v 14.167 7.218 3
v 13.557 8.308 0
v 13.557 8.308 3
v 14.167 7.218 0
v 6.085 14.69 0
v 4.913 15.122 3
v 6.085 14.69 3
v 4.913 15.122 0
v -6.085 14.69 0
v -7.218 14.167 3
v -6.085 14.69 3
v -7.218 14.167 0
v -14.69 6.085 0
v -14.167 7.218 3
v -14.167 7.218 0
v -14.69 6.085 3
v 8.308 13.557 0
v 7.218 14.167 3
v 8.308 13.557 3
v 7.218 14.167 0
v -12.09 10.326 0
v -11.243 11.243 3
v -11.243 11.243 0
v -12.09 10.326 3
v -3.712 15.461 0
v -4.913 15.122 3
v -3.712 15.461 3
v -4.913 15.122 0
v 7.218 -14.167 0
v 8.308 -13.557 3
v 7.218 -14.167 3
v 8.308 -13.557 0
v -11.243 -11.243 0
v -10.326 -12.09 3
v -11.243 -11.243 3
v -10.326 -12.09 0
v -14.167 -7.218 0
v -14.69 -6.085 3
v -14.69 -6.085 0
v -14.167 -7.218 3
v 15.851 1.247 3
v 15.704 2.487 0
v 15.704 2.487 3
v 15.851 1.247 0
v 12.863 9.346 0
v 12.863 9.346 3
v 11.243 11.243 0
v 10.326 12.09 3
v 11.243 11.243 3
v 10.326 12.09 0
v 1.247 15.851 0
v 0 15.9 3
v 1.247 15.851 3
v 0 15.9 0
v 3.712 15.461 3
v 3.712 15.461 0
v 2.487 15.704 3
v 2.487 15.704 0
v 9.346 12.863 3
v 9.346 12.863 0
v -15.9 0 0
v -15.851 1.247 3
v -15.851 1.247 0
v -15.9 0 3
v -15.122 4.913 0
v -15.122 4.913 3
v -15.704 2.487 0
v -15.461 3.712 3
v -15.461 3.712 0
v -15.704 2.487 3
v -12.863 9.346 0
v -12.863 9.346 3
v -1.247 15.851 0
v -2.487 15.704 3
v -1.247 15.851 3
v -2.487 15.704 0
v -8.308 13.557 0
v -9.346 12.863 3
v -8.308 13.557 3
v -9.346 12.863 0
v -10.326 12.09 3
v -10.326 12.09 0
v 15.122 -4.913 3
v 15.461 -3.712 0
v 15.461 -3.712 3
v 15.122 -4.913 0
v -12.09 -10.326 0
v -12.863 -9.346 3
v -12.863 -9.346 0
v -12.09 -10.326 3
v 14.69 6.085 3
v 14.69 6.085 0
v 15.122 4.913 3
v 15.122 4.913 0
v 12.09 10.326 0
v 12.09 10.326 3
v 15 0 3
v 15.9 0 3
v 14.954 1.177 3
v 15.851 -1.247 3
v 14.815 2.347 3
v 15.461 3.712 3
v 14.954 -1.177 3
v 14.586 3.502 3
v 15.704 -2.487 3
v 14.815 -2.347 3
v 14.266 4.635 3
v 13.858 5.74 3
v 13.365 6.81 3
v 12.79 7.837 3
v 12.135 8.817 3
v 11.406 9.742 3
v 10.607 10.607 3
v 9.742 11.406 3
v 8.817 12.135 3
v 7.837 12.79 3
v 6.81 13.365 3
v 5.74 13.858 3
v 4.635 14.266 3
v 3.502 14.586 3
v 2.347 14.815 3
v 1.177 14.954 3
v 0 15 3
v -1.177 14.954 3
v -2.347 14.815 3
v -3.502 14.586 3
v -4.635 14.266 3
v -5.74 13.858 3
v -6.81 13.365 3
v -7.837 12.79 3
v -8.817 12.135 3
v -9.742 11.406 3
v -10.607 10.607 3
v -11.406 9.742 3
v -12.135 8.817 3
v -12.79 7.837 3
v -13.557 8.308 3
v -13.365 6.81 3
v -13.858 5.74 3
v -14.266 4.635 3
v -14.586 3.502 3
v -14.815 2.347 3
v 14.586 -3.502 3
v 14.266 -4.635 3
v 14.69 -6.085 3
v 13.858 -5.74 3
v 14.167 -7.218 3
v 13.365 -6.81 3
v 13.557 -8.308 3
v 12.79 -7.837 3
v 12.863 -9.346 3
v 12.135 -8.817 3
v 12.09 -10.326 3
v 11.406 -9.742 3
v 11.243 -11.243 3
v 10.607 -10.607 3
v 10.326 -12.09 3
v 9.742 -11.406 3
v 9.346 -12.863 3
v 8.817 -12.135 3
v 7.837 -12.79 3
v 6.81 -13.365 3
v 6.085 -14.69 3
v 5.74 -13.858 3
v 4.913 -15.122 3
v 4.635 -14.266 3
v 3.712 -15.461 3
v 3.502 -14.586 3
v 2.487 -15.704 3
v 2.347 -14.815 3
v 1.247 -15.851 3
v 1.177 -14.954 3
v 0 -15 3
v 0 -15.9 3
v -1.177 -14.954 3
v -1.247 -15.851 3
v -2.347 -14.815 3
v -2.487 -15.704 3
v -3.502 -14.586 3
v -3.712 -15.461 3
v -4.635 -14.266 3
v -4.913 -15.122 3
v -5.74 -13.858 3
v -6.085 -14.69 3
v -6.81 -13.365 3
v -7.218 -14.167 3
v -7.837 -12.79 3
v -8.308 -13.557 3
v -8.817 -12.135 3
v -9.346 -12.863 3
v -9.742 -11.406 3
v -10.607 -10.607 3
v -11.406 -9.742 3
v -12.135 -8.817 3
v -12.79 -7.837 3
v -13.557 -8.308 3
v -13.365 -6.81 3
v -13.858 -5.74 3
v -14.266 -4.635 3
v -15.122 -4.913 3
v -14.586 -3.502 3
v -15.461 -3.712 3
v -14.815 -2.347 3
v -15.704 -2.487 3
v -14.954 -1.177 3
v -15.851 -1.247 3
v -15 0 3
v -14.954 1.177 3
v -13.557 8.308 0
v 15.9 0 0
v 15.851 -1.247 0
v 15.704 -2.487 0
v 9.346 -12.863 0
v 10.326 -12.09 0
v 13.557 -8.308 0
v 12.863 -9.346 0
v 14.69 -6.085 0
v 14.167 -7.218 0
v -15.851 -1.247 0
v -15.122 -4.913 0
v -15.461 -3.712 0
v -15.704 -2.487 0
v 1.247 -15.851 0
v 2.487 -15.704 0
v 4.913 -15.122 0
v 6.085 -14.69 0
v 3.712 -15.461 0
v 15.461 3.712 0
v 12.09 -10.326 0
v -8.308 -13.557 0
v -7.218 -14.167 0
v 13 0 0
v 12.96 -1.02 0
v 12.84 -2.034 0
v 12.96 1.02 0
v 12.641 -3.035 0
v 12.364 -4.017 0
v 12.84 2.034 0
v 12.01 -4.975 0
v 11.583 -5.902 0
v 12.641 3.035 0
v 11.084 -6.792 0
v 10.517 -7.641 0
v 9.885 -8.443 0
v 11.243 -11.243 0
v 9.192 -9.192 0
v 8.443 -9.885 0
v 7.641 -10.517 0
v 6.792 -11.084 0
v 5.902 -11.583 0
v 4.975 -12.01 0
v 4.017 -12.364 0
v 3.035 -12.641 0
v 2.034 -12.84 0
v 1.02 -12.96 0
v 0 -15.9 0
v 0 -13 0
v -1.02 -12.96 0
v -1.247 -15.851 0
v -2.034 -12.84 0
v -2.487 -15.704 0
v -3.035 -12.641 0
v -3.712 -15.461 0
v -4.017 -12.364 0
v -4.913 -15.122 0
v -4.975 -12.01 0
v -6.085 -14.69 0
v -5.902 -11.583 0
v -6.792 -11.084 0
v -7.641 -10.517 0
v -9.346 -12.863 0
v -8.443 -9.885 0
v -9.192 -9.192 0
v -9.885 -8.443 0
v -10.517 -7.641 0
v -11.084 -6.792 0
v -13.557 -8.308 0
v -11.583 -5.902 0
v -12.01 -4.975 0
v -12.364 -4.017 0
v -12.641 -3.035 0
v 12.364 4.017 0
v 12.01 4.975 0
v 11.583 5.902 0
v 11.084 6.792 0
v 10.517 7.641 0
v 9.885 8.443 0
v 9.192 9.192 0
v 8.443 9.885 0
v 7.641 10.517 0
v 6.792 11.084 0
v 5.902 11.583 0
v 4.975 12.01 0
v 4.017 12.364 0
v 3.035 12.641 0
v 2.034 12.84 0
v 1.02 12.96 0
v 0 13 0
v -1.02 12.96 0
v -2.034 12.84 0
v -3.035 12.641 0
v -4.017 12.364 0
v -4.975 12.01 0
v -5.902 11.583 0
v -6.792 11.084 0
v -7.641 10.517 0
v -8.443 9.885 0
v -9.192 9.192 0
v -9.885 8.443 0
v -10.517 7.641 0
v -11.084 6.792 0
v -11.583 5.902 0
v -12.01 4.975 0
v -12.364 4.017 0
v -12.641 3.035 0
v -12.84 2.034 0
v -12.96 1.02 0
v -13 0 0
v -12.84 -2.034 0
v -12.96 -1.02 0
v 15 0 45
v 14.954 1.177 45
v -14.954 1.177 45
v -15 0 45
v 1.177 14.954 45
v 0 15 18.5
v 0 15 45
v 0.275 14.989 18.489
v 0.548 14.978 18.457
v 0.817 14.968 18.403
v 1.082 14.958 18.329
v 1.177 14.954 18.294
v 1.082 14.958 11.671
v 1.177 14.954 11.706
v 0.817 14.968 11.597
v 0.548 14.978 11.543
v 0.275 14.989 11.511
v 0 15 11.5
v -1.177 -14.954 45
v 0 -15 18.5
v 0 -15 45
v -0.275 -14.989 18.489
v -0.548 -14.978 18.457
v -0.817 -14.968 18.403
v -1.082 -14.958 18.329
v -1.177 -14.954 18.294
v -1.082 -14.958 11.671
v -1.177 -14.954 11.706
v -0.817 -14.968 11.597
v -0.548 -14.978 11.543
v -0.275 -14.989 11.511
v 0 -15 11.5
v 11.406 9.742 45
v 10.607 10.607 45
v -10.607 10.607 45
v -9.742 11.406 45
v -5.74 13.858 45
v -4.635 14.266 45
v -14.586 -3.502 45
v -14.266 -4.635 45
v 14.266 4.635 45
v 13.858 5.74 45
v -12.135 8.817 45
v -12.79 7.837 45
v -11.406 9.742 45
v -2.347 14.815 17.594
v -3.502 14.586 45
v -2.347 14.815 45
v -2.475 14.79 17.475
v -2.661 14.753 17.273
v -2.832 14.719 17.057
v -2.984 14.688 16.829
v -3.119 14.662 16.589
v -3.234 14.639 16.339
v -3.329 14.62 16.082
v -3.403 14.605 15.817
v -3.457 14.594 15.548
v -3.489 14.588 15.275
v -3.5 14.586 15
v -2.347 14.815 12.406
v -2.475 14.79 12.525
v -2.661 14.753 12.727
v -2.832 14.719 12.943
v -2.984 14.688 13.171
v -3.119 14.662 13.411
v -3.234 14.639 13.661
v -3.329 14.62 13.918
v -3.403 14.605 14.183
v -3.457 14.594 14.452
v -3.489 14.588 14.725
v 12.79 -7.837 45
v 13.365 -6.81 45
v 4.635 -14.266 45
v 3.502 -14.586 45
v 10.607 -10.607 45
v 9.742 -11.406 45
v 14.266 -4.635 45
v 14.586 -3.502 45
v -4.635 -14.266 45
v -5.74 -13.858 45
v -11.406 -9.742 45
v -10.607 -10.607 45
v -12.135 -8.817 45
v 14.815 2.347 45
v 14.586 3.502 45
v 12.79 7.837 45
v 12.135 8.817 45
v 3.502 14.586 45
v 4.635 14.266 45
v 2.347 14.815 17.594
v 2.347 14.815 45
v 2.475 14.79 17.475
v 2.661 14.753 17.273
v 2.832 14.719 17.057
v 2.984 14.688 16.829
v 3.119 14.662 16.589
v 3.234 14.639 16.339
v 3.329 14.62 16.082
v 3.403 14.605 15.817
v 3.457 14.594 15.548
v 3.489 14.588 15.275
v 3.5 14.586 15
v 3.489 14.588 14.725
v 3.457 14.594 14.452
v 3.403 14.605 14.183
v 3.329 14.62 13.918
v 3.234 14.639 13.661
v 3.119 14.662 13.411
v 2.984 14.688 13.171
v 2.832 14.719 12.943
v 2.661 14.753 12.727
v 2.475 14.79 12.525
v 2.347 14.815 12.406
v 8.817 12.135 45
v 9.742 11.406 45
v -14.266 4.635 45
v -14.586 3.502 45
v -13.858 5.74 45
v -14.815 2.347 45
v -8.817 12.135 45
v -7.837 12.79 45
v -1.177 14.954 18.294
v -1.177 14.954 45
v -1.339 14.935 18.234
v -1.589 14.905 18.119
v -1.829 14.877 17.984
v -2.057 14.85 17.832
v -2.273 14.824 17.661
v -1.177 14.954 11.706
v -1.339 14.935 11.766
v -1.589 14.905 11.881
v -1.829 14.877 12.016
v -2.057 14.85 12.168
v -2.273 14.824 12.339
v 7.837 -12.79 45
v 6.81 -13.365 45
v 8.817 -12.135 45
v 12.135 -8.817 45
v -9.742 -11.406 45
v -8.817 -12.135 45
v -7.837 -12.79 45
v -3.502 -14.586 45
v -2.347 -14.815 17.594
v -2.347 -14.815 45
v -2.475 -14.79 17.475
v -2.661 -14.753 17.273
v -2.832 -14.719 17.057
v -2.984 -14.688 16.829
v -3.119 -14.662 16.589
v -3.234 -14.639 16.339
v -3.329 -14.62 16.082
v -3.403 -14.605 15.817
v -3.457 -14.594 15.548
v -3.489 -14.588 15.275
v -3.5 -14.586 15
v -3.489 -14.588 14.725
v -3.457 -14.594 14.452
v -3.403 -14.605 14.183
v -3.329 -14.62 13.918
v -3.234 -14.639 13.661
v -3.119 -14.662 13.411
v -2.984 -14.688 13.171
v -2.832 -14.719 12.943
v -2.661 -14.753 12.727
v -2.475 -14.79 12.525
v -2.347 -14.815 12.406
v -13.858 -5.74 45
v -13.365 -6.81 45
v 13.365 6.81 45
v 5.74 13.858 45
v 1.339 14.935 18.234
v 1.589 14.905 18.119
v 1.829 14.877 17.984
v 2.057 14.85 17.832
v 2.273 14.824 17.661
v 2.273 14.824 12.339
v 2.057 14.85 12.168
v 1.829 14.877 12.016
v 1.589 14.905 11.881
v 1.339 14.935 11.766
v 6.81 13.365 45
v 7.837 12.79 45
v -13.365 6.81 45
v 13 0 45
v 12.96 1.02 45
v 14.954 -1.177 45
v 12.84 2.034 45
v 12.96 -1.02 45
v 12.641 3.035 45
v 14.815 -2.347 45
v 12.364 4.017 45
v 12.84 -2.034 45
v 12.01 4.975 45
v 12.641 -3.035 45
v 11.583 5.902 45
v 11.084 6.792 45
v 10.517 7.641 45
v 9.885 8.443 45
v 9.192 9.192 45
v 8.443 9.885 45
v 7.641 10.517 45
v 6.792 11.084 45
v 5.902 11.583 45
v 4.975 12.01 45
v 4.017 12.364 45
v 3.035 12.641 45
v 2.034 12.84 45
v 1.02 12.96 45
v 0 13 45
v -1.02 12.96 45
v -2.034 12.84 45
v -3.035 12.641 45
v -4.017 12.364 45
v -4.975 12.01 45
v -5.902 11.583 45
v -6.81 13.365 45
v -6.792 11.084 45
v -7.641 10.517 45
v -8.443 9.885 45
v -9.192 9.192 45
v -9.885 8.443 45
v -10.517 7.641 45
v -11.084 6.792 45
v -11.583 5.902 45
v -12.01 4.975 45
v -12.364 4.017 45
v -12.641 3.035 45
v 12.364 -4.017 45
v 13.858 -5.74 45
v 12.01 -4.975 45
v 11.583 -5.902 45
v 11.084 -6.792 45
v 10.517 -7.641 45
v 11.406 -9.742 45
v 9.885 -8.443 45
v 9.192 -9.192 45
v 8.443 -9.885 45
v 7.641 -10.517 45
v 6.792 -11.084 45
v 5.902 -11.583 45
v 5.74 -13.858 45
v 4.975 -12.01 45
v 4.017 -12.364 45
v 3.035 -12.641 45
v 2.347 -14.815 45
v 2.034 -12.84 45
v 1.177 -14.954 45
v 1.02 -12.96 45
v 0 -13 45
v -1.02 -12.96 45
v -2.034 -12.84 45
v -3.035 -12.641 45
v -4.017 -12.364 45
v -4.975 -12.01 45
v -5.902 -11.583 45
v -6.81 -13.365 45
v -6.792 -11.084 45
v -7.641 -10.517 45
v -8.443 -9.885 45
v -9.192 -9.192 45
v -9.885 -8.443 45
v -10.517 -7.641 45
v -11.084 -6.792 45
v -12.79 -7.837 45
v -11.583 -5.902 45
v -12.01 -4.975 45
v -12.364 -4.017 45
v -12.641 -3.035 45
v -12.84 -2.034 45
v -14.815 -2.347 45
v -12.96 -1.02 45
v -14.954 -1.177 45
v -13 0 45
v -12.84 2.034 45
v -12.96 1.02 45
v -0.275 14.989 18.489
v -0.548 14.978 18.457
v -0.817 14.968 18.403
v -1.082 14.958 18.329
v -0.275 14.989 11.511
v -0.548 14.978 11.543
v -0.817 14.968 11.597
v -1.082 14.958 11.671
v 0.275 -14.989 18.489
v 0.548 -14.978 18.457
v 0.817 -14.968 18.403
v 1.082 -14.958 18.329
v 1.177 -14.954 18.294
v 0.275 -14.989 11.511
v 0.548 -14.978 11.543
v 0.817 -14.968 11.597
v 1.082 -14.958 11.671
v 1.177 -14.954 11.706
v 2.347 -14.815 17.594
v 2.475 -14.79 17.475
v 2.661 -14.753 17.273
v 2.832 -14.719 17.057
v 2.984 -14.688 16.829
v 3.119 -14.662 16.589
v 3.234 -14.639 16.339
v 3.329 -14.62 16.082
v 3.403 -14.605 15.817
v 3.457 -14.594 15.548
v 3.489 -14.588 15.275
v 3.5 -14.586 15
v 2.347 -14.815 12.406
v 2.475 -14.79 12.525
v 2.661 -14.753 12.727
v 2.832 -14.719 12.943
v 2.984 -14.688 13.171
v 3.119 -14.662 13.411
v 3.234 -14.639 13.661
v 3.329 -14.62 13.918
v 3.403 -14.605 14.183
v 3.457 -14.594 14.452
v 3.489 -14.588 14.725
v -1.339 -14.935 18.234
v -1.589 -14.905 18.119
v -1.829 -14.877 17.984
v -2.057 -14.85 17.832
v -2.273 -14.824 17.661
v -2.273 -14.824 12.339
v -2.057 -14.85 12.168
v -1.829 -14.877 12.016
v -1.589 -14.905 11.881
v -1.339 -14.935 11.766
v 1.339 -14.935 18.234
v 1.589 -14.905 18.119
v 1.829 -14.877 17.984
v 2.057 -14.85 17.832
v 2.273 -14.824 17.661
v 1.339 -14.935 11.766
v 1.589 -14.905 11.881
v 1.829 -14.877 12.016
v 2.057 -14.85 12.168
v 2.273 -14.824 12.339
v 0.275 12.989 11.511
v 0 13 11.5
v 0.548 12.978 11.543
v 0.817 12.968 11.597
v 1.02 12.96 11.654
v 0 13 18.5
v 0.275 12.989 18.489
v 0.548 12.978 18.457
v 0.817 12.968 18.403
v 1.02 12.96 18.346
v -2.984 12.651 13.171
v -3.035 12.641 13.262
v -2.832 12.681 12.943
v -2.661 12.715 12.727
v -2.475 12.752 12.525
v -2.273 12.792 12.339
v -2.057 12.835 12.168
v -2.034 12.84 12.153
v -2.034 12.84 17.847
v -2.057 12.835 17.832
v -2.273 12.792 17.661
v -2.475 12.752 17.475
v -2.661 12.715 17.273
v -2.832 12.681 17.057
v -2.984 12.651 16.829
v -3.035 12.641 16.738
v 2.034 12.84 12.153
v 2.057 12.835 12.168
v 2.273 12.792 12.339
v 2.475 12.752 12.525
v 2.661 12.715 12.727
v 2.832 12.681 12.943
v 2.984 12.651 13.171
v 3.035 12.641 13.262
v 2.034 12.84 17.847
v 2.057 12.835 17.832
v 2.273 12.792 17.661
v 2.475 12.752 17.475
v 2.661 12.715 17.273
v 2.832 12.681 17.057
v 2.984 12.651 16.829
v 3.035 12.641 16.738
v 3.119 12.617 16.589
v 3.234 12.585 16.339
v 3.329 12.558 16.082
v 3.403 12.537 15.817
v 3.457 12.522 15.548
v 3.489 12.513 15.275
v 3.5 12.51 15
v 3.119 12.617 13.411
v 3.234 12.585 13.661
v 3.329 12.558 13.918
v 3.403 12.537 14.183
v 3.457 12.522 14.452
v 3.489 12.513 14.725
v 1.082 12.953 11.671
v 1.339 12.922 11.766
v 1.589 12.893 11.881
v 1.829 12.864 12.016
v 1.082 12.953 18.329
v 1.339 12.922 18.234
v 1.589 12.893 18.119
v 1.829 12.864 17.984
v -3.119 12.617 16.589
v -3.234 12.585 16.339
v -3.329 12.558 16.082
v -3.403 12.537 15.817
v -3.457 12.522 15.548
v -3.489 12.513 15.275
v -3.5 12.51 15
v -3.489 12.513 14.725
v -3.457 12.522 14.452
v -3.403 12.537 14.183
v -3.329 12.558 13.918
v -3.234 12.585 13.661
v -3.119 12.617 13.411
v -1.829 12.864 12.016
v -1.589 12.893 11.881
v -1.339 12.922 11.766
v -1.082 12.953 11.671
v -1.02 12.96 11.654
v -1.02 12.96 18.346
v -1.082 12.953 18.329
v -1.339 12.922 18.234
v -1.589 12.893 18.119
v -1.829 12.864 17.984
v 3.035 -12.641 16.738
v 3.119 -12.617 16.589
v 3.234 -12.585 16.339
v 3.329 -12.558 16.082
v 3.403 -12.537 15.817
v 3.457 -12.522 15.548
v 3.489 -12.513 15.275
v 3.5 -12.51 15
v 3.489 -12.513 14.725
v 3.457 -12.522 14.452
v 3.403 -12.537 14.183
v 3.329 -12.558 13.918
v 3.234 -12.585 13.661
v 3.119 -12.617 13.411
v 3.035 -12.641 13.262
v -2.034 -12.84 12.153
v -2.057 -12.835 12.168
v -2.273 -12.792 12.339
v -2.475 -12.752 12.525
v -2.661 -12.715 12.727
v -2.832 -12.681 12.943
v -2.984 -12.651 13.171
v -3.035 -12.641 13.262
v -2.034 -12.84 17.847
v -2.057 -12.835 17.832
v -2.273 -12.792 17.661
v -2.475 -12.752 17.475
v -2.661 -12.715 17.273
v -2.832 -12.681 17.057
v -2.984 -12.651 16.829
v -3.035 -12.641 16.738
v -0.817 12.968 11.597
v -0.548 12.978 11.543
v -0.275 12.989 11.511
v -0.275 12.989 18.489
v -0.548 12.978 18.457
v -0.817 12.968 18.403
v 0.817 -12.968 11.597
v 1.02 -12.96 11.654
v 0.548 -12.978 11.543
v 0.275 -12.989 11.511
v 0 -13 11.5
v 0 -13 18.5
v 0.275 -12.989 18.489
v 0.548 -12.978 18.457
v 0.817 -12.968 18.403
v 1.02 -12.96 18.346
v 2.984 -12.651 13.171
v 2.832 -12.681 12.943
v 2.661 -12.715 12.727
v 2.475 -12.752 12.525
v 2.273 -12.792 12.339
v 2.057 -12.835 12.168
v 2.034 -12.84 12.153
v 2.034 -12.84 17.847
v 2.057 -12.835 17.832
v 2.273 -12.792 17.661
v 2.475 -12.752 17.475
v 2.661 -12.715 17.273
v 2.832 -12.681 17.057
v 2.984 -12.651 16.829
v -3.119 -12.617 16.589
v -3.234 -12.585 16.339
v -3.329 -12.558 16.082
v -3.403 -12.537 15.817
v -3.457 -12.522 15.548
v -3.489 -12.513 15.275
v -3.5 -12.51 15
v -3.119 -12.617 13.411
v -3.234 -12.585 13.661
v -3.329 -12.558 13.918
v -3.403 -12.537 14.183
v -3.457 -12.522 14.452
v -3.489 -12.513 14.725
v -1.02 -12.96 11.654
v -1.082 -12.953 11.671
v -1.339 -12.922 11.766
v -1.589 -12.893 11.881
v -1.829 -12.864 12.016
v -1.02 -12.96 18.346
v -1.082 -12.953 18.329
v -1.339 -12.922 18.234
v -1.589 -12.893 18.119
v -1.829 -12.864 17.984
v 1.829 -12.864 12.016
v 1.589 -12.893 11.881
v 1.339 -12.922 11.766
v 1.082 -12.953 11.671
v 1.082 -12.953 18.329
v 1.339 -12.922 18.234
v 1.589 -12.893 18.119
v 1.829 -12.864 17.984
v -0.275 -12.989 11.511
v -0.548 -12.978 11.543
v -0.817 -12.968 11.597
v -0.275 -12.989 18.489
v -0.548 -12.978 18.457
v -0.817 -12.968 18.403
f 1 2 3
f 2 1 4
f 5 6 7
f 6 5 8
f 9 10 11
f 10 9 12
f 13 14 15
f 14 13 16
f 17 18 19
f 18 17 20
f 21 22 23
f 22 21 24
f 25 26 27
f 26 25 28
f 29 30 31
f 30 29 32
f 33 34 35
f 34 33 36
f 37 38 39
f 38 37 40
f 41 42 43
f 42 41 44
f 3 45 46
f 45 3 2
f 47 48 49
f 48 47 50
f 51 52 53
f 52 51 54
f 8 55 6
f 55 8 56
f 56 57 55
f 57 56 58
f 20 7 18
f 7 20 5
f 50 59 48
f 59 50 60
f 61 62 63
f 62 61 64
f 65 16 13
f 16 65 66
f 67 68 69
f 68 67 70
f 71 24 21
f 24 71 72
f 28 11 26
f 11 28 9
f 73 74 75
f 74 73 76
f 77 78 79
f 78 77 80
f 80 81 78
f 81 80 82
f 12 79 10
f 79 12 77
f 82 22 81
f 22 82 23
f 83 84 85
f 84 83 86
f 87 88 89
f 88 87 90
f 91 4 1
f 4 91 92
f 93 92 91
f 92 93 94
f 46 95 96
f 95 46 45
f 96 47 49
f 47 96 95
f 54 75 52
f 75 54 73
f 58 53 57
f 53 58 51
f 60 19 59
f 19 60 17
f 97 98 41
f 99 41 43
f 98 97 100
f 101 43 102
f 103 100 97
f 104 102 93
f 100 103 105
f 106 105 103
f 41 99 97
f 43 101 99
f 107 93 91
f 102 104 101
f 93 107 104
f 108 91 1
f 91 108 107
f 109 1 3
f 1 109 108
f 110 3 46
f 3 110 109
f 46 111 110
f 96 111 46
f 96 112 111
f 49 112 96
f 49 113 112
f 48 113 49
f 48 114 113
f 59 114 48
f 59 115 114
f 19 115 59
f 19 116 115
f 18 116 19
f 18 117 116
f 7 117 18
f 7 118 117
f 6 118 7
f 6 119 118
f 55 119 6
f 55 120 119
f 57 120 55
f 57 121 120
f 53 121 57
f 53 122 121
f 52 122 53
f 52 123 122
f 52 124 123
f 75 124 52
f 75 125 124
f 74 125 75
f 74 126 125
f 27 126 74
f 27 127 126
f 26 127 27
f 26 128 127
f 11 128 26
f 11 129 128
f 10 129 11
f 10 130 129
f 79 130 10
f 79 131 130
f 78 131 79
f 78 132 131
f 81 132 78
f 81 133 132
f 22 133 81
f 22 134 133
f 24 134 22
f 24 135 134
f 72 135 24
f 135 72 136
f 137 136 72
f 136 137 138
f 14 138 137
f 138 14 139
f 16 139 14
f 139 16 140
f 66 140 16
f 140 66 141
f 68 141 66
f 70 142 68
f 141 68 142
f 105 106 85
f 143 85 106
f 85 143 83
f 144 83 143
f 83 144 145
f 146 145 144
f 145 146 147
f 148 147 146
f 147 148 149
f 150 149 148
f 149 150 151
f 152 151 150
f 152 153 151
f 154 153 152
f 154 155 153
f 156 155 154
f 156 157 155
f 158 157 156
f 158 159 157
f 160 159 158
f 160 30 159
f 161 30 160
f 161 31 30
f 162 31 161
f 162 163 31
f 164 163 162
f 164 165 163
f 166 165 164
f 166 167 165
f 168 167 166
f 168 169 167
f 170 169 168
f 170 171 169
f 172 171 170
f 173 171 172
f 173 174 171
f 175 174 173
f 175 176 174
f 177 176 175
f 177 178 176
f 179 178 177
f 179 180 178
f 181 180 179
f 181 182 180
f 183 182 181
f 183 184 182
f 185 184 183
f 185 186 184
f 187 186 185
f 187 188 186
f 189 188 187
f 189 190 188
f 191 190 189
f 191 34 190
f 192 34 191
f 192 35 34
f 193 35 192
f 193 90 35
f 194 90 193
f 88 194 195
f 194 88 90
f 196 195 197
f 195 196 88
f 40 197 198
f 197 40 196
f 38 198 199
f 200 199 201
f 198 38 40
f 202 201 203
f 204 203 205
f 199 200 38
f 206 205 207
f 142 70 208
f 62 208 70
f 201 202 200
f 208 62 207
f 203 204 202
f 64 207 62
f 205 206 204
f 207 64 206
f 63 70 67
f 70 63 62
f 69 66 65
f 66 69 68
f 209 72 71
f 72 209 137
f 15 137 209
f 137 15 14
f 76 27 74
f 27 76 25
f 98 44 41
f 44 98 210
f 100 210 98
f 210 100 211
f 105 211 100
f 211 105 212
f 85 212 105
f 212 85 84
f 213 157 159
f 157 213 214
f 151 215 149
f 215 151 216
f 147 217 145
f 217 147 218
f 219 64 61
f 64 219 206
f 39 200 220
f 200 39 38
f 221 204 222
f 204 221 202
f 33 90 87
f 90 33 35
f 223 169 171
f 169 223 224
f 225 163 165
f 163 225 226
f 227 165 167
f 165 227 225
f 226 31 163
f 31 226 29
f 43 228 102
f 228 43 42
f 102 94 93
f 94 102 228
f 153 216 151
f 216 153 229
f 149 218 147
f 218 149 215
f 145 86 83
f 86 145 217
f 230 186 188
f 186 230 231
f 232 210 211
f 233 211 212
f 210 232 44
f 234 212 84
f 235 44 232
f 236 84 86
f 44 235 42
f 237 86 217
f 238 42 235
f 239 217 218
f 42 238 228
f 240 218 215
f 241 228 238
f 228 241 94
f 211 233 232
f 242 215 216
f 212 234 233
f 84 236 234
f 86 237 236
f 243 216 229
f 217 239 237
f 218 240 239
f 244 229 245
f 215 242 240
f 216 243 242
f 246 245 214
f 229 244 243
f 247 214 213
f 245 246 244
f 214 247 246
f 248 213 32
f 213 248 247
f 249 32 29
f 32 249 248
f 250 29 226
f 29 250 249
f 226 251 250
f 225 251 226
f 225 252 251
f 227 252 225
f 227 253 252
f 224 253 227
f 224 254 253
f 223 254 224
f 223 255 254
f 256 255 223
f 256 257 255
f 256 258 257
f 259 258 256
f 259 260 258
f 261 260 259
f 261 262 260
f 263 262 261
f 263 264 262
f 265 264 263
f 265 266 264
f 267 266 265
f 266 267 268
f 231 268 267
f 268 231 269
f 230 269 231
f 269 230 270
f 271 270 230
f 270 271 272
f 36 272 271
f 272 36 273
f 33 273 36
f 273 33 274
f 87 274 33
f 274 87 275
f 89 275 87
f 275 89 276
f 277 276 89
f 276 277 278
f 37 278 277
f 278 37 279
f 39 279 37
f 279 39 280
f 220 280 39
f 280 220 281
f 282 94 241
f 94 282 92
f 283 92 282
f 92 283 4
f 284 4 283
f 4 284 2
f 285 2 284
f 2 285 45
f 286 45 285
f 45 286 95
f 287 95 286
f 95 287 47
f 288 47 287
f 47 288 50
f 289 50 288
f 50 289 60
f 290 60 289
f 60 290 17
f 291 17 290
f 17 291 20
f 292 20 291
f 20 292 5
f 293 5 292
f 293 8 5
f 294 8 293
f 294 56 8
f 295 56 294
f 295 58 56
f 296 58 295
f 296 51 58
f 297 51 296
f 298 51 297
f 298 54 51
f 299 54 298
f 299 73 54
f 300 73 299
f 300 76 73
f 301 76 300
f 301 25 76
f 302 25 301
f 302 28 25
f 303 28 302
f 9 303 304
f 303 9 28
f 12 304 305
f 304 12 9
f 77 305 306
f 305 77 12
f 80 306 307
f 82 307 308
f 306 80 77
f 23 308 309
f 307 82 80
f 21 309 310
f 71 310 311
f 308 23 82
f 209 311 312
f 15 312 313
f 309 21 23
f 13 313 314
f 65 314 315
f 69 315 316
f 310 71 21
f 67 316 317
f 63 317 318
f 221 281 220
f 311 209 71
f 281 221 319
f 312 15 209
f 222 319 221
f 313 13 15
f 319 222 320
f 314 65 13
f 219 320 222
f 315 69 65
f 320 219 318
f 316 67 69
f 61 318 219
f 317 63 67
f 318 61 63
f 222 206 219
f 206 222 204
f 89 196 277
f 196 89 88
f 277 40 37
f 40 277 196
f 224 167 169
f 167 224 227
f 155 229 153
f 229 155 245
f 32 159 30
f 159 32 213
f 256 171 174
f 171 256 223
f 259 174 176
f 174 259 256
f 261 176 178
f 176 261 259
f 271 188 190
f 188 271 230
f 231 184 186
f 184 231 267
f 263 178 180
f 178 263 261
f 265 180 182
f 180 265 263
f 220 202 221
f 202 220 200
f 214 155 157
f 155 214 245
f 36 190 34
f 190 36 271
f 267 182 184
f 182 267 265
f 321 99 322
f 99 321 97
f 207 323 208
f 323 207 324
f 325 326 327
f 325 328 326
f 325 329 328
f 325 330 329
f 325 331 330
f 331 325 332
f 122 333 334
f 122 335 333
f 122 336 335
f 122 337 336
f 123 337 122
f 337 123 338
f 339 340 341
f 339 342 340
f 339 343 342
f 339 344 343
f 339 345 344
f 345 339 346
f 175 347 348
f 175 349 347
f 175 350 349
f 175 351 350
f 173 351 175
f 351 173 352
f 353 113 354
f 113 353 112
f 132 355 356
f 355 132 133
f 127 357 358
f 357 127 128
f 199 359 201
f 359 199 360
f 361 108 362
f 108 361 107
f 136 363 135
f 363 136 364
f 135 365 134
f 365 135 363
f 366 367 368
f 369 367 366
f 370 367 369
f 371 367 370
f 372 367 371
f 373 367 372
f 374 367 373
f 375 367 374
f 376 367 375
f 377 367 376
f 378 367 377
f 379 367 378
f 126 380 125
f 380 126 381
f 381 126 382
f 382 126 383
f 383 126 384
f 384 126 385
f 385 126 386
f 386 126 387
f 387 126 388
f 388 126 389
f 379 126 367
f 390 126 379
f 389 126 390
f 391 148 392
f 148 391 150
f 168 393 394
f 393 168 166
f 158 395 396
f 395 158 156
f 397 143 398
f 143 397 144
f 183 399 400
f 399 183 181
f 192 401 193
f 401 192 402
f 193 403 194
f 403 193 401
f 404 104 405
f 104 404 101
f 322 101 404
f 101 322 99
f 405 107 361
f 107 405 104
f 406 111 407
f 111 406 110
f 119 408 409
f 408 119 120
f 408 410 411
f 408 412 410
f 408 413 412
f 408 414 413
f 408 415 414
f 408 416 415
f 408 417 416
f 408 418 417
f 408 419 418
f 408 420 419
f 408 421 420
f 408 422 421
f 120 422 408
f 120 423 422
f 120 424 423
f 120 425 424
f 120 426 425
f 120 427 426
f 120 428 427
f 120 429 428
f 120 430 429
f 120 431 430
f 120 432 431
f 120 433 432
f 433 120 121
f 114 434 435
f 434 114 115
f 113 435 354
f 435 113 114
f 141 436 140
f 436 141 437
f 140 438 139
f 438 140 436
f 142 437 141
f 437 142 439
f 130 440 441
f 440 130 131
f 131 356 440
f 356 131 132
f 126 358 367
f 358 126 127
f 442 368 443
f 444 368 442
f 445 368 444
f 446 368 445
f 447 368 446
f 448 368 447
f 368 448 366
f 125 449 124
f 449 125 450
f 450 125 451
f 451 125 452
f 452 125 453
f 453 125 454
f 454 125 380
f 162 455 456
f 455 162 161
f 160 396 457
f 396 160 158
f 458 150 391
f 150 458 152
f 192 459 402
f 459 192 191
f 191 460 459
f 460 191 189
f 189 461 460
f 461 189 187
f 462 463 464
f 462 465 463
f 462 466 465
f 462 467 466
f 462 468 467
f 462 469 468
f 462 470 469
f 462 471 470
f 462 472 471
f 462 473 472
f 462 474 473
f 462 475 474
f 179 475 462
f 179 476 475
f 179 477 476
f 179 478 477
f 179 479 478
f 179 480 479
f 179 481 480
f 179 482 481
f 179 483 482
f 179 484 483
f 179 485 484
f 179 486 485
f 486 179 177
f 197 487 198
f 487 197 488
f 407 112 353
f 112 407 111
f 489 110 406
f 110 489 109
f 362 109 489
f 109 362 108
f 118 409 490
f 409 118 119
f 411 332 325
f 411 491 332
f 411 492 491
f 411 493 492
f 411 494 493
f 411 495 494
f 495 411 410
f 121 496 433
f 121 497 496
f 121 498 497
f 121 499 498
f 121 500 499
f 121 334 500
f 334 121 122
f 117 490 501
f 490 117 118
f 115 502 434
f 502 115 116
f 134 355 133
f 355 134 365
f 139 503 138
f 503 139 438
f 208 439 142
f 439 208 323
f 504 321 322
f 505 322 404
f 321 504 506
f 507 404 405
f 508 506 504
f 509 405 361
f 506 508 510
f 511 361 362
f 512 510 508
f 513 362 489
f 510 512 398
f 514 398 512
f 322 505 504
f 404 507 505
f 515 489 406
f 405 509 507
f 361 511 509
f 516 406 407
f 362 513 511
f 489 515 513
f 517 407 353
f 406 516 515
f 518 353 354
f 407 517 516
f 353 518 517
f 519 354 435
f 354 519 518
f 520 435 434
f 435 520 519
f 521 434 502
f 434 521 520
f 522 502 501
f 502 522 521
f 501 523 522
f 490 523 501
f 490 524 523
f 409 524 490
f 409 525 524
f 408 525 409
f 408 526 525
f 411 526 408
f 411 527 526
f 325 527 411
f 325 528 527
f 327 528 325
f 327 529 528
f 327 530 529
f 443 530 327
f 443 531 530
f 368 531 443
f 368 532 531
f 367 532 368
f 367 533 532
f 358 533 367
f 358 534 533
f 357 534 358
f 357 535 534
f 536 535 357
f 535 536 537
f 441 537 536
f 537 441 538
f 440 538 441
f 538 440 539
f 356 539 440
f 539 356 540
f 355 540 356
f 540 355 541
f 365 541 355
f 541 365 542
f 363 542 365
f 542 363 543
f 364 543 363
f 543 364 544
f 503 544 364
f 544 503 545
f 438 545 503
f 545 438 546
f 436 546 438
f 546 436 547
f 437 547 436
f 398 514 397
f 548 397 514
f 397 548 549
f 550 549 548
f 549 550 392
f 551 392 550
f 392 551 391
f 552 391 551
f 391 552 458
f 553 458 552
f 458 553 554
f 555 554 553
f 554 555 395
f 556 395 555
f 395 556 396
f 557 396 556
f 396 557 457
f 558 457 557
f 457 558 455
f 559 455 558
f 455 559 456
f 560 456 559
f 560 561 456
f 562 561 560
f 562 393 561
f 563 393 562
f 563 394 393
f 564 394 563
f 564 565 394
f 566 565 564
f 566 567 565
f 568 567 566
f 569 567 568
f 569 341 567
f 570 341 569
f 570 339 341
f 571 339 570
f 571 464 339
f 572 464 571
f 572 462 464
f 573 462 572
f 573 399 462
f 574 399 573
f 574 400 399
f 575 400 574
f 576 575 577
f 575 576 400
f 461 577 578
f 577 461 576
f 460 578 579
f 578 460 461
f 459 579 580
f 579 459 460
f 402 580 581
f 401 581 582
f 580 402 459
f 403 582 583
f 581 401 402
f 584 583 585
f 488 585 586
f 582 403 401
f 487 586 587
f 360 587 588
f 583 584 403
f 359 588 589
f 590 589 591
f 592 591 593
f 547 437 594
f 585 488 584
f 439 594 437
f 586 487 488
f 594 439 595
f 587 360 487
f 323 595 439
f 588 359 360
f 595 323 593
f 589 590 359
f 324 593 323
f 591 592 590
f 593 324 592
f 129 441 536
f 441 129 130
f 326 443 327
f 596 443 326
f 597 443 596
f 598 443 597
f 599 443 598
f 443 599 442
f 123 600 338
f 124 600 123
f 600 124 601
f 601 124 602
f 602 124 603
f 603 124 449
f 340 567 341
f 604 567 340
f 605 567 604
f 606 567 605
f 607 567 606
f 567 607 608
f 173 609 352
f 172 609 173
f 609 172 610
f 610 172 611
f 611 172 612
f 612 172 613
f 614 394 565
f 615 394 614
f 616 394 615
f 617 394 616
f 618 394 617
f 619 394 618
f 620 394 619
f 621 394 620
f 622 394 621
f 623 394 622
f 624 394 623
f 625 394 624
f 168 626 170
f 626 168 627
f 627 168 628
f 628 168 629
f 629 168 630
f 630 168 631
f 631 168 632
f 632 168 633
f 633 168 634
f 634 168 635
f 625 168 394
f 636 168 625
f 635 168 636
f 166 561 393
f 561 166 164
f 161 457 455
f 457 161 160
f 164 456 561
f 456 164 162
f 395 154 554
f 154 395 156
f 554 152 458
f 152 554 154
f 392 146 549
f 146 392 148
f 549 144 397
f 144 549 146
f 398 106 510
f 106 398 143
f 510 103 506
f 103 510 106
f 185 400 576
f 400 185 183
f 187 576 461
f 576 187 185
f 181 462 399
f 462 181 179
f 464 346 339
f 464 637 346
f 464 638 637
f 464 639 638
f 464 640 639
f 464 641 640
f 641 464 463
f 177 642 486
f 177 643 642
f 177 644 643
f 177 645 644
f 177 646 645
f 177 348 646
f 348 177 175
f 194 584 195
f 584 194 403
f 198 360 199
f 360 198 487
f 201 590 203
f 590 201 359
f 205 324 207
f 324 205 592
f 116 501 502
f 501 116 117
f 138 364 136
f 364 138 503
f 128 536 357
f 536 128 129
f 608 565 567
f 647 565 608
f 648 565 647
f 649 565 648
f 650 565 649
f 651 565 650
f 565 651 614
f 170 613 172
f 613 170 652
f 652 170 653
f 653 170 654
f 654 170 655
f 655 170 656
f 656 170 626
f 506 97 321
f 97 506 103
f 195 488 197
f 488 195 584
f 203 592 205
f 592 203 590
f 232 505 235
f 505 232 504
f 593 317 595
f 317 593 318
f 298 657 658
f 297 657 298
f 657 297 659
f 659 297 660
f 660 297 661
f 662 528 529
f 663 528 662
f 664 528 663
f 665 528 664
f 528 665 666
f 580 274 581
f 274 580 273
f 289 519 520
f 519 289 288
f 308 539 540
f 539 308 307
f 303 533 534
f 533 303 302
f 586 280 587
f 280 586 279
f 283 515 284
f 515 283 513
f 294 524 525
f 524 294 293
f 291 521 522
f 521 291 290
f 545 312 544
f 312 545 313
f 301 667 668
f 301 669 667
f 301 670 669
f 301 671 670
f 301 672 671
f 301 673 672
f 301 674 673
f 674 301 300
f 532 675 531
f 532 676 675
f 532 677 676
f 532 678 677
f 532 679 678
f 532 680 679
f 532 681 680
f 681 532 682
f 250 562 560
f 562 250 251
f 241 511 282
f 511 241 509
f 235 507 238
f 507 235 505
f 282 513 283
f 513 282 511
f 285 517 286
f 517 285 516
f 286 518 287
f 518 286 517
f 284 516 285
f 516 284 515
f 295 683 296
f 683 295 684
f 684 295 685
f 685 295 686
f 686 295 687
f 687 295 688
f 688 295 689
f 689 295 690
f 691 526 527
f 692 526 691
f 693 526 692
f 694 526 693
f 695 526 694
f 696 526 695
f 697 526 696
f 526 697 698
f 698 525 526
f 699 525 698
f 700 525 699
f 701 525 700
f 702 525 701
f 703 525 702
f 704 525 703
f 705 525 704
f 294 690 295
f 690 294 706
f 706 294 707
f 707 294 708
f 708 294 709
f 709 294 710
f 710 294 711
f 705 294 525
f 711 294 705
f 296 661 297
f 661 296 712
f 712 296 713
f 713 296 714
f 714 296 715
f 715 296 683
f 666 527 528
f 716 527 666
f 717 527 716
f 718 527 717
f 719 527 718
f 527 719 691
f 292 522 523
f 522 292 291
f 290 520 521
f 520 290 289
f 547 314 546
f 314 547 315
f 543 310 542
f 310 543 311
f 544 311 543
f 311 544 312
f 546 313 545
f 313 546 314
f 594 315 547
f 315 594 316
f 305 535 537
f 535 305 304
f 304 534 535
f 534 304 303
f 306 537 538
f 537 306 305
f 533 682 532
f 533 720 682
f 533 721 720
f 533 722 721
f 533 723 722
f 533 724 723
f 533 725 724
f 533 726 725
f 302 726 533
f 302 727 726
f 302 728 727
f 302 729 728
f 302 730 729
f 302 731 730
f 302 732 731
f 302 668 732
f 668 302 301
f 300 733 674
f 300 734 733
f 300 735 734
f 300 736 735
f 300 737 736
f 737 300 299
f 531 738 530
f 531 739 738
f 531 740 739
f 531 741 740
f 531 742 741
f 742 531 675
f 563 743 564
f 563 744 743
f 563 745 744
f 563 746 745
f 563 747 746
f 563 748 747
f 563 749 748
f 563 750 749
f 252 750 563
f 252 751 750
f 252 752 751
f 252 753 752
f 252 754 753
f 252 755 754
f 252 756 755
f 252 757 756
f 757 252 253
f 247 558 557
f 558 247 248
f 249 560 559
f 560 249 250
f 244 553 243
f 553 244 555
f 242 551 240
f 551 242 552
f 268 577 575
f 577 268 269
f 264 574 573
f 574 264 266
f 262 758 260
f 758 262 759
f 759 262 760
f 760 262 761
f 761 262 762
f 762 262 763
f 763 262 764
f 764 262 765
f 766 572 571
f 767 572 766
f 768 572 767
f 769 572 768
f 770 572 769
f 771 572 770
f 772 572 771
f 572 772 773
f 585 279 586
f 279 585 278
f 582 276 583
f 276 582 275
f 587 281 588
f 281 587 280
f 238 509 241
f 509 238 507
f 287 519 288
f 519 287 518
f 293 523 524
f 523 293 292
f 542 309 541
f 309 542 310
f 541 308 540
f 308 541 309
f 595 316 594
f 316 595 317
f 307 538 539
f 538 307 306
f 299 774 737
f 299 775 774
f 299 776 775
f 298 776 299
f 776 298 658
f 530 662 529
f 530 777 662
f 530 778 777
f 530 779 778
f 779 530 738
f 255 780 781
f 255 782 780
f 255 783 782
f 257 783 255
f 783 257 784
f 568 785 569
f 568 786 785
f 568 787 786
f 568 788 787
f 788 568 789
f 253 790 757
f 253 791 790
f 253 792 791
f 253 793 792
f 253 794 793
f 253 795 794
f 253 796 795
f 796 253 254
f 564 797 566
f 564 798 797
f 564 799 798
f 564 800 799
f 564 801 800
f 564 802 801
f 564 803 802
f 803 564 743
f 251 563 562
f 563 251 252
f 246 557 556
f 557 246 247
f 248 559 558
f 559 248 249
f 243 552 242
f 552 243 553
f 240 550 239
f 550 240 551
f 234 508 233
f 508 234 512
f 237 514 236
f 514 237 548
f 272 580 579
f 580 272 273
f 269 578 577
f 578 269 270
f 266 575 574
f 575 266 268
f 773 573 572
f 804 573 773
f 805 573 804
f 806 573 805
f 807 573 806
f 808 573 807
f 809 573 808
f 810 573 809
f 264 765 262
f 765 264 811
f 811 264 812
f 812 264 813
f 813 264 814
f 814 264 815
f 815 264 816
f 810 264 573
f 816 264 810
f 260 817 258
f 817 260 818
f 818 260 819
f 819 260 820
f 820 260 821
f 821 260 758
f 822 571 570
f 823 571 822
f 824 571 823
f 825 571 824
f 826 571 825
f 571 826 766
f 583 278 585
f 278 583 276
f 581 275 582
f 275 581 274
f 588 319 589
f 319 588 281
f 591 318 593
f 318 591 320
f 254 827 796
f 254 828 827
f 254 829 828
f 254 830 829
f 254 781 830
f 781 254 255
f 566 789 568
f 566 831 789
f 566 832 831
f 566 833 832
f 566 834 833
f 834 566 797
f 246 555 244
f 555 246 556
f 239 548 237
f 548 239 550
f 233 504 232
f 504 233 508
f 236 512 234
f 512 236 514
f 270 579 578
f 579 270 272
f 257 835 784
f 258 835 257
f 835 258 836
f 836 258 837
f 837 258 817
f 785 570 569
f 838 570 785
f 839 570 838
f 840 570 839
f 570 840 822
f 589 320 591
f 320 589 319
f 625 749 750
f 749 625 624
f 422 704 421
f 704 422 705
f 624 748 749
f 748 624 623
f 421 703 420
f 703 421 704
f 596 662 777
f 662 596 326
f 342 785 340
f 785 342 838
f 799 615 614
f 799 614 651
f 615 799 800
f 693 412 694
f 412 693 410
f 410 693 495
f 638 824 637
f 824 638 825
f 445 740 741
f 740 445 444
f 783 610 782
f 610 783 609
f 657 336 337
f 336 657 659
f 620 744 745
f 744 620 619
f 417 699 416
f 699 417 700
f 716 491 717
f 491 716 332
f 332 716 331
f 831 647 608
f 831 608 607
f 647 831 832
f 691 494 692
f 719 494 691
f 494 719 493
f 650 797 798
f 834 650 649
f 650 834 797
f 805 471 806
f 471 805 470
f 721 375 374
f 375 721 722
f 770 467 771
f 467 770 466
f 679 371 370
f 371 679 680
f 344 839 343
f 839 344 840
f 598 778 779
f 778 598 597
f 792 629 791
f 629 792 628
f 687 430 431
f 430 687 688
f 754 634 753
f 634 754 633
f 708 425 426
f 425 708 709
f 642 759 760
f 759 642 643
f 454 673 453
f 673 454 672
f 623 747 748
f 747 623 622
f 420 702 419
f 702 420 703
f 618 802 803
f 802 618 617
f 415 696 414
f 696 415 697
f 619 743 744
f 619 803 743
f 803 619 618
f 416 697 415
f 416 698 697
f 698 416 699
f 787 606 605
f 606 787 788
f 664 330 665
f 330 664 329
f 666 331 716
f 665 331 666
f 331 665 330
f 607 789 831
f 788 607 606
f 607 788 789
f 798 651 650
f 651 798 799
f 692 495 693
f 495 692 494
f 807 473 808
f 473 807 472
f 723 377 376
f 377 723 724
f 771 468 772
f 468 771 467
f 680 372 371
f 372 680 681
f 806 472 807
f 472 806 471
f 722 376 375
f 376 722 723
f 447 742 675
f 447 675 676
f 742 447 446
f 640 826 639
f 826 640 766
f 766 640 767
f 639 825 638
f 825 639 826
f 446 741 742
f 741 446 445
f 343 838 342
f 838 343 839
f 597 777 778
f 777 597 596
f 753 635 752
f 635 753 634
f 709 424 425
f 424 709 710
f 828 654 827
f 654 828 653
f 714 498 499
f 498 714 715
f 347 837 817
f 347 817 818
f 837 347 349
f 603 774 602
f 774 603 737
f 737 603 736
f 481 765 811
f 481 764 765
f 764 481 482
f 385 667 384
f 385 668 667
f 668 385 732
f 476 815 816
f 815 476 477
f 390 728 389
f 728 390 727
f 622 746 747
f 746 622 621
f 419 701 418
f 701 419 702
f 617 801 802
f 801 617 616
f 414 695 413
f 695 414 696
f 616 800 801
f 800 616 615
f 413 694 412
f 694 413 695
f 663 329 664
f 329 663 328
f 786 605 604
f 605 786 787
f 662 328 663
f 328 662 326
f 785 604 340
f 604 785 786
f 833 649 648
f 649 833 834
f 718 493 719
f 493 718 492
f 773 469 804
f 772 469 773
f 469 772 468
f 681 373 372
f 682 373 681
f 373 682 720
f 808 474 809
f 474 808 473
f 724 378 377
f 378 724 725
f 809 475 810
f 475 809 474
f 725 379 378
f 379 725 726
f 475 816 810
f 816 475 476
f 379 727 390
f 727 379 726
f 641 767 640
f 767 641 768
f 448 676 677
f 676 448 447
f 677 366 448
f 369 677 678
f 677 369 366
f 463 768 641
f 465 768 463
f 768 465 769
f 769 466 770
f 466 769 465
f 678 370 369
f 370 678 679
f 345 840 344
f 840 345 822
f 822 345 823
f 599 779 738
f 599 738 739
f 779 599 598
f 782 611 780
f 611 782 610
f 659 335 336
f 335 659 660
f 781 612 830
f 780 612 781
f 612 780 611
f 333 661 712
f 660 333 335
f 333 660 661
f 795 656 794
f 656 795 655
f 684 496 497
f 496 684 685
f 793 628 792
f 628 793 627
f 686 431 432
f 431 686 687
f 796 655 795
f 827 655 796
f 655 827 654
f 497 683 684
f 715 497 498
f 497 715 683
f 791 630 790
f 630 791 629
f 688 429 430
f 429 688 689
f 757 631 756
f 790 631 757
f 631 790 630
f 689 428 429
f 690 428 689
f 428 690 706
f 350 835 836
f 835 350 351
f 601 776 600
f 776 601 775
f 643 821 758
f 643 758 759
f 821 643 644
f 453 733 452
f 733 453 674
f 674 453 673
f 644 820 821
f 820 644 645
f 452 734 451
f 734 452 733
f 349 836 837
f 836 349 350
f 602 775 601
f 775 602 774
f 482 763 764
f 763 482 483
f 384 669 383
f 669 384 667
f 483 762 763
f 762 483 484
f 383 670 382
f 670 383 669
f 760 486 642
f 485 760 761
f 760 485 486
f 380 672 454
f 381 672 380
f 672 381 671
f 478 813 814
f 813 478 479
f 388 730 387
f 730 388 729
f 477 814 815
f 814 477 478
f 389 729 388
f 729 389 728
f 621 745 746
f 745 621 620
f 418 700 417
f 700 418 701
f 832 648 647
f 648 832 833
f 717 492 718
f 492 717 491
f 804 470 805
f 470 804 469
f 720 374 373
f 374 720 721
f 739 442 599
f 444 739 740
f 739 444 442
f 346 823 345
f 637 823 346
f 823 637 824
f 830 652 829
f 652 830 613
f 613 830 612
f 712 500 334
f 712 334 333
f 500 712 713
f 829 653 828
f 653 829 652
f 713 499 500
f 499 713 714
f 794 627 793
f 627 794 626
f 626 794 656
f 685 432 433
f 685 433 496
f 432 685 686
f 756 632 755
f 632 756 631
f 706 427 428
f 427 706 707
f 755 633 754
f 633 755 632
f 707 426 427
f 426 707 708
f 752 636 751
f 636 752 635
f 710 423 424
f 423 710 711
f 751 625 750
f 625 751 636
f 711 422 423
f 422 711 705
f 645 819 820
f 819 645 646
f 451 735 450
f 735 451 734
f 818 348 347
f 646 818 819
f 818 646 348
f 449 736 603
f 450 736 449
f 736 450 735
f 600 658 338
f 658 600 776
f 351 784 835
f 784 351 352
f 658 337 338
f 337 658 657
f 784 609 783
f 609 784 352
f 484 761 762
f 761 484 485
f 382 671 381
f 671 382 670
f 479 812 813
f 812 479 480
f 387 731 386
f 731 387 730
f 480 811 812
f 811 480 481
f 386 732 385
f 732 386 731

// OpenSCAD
$fn=80;

/**
 This is a simple ring which helps bridge instruments to the pole.
 */

module ring() {
    difference() {
        union() {
            cylinder(d=31.8, h=3);
            cylinder(d=30, h=45);
        }
        cylinder(d=26, h=100, center=true);
        translate([0,0,15]) rotate([90,0,0]) cylinder(d=7, h=50, center=true);
    }
}

ring();
